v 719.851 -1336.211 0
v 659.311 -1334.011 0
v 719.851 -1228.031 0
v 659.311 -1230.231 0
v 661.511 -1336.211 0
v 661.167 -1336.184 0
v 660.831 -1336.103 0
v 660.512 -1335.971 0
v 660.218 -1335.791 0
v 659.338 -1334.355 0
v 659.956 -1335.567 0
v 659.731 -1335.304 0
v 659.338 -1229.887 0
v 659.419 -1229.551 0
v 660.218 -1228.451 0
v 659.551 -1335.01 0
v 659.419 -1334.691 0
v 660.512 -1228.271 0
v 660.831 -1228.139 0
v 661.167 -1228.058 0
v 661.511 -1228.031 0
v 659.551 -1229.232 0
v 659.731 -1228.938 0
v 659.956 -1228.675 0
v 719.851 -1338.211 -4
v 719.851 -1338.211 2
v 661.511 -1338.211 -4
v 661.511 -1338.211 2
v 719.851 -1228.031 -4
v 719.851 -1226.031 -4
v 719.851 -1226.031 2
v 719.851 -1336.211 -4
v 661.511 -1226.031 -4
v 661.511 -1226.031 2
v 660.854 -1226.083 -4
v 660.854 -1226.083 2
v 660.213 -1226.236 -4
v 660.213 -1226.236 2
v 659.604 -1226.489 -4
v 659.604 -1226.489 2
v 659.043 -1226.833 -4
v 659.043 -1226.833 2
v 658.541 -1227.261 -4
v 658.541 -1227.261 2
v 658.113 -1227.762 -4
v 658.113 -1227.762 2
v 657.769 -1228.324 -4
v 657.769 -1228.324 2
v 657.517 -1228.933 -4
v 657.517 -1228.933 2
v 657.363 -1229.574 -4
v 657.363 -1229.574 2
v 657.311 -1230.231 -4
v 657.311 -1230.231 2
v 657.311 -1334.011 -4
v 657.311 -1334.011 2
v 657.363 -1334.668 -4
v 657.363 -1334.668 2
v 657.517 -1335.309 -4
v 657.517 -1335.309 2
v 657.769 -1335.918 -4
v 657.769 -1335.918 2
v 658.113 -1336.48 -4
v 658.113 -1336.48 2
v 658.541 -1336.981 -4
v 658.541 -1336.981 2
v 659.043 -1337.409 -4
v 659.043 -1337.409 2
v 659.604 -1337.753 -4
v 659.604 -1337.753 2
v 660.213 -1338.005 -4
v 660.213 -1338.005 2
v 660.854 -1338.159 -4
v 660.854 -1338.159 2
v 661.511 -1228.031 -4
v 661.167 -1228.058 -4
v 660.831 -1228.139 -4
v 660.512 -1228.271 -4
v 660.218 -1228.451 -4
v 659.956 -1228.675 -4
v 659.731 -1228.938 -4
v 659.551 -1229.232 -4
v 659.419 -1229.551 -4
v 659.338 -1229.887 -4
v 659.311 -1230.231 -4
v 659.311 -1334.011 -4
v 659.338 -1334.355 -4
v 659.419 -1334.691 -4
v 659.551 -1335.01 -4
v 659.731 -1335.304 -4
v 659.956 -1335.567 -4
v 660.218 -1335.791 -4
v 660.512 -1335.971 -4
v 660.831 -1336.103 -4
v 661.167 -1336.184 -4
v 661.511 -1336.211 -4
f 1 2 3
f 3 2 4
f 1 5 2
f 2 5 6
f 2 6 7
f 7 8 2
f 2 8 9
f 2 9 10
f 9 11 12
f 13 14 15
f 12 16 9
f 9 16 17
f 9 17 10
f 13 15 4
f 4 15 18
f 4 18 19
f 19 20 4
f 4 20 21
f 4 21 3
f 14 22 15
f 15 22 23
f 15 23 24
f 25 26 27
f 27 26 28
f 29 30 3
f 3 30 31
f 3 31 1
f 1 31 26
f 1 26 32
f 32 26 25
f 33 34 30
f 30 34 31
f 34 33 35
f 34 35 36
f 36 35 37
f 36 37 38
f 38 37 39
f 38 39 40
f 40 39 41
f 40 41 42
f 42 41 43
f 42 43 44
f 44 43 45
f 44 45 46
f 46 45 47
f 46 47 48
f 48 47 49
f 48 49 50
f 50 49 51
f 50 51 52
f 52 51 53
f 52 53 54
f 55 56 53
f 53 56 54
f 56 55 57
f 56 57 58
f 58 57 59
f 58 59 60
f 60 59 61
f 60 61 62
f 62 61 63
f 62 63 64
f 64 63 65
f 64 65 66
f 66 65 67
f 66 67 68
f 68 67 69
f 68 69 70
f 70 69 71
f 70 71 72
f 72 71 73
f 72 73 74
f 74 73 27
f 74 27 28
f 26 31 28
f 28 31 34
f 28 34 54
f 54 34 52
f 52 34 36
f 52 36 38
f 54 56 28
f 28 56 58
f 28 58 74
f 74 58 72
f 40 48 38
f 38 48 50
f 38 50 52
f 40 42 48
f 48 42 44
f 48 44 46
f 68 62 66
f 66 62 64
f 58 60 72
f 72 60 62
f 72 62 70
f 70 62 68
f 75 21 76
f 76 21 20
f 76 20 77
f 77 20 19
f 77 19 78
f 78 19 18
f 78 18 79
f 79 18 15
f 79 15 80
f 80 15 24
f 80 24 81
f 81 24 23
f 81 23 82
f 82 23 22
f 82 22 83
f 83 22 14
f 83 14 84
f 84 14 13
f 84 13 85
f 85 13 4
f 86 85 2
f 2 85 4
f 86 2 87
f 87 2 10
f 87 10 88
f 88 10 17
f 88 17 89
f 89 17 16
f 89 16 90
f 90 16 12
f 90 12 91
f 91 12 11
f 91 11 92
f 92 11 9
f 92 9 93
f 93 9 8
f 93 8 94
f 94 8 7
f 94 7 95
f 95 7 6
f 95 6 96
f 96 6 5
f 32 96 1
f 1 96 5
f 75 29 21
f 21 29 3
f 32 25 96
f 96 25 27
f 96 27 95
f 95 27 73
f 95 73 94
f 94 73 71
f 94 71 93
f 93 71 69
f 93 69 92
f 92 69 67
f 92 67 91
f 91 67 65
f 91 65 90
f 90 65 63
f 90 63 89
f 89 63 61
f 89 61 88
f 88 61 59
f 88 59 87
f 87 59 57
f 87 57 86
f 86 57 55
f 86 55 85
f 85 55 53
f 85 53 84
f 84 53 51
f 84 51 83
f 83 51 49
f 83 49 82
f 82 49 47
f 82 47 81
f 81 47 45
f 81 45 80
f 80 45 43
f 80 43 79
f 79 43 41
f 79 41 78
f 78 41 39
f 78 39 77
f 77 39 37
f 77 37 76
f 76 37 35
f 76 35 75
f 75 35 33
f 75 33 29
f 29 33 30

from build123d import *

# Parameters (mm, degrees)
BOSS_EXTRUDE1_DEPTH = 2
BOSS_EXTRUDE2_START = -4
BOSS_EXTRUDE2_DEPTH = 4


with BuildPart() as part:
    # Sketch1 → Boss-Extrude1 (new body)
    with BuildSketch(Plane.XY):
        with BuildLine():
            ThreePointArc((661.511242052, -1226.030951231), (658.541393571, -1227.26110275), (657.311242052, -1230.230951231))
            Line((657.311242052, -1230.230951231), (657.311242052, -1334.010951231))
            ThreePointArc((657.311242052, -1334.010951231), (658.541393571, -1336.980799712), (661.511242052, -1338.210951231))
            Line((661.511242052, -1338.210951231), (719.851242052, -1338.210951231))
            Line((719.851242052, -1338.210951231), (719.851242052, -1226.030951231))
            Line((719.851242052, -1226.030951231), (661.511242052, -1226.030951231))
        make_face()
    extrude(amount=BOSS_EXTRUDE1_DEPTH)

    # Sketch1<3> → Boss-Extrude2 (add)
    with BuildSketch(Plane.XY.offset(BOSS_EXTRUDE2_START)):
        with BuildLine():
            ThreePointArc((661.511242052, -1226.030951231), (658.541393571, -1227.26110275), (657.311242052, -1230.230951231))
            Line((657.311242052, -1230.230951231), (657.311242052, -1334.010951231))
            ThreePointArc((657.311242052, -1334.010951231), (658.541393571, -1336.980799712), (661.511242052, -1338.210951231))
            Line((661.511242052, -1338.210951231), (719.851242052, -1338.210951231))
            Line((719.851242052, -1338.210951231), (719.851242052, -1336.210951231))
            Line((719.851242052, -1336.210951231), (661.511242052, -1336.210951231))
            ThreePointArc((661.511242052, -1336.210951231), (659.955607133, -1335.56658615), (659.311242052, -1334.010951231))
            Line((659.311242052, -1334.010951231), (659.311242052, -1230.230951231))
            ThreePointArc((659.311242052, -1230.230951231), (659.955607133, -1228.675316313), (661.511242052, -1228.030951231))
            Line((661.511242052, -1228.030951231), (719.851242052, -1228.030951231))
            Line((719.851242052, -1228.030951231), (719.851242052, -1226.030951231))
            Line((719.851242052, -1226.030951231), (661.511242052, -1226.030951231))
        make_face()
    extrude(amount=BOSS_EXTRUDE2_DEPTH)


solid = part.part
